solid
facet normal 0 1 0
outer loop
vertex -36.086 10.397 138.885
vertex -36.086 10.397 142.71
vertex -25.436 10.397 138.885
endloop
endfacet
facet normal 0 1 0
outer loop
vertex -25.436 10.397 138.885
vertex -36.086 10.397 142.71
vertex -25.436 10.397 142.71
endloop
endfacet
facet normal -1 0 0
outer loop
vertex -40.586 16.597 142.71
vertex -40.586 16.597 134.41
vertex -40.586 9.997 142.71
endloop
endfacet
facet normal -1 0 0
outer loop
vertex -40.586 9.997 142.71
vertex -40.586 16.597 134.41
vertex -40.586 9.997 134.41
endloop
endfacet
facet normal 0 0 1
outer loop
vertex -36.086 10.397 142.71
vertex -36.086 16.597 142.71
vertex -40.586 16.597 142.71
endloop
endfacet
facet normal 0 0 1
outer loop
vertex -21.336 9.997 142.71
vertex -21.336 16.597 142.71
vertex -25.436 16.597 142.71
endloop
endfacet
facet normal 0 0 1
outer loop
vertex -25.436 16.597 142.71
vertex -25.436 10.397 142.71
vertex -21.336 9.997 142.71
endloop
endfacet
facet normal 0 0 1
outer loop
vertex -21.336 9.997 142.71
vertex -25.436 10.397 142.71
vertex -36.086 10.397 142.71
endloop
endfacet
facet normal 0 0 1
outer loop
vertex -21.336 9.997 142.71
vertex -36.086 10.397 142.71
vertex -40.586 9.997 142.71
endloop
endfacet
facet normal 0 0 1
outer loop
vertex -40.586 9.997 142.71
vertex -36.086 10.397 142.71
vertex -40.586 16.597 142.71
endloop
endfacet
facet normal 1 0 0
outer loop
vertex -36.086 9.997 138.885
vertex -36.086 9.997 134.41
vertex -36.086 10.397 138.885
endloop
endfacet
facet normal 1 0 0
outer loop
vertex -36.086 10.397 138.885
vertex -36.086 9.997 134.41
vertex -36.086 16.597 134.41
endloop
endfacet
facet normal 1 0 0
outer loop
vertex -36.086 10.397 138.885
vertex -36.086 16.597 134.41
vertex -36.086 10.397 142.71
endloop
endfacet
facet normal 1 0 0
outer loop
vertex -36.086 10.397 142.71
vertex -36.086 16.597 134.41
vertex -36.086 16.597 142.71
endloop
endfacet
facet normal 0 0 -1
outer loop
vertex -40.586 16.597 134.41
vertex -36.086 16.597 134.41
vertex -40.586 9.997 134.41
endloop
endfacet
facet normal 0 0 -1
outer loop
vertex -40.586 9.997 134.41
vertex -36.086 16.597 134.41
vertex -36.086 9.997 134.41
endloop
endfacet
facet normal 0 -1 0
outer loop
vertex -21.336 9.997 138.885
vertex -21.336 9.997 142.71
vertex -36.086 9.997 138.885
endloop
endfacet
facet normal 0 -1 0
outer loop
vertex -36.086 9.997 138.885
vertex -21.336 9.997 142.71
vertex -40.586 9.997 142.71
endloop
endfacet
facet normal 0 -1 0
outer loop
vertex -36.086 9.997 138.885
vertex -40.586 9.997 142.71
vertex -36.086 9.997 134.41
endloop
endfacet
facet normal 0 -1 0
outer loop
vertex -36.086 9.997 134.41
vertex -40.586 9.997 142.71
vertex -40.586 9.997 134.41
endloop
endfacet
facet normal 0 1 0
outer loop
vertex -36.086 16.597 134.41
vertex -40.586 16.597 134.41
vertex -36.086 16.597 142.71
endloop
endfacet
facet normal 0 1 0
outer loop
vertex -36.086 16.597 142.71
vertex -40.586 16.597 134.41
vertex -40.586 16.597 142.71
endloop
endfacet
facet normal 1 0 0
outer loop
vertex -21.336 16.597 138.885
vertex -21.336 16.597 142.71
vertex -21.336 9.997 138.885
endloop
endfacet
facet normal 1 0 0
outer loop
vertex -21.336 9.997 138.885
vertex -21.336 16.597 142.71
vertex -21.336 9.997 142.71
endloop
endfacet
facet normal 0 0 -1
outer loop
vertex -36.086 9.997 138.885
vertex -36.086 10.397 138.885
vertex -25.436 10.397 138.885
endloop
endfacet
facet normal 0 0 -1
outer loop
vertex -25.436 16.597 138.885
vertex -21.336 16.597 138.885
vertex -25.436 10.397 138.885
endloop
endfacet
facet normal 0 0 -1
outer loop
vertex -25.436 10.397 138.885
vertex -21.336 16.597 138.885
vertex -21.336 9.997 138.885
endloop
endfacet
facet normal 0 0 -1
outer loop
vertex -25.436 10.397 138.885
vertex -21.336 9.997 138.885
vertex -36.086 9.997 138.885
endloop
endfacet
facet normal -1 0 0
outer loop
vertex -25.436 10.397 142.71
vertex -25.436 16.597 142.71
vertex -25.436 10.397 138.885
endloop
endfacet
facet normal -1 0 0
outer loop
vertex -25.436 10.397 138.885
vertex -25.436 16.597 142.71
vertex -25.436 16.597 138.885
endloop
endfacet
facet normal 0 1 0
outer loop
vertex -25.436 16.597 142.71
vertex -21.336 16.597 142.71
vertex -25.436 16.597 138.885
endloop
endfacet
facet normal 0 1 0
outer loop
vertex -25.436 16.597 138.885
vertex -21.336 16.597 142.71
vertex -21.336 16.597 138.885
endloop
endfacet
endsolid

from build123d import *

# Parameters (mm, degrees)
SCHIZZO1_W                   = 4.5
SCHIZZO1_H                   = 3.825
SCHIZZO1_H_2                 = 4.475
SCHIZZO1_W_2                 = 4.1
ESTRUSIONE_ESTRUSIONE1_DEPTH = 6.6
SCHIZZO1_4_W                 = 4.5
SCHIZZO1_4_H                 = 4.475
SCHIZZO1_4_H_2               = 3.825
SCHIZZO1_4_W_2               = 10.65
SCHIZZO1_4_W_3               = 4.1
ESTRUSIONE_ESTRUSIONE2_DEPTH = 0.4


with BuildPart() as part:
    # Schizzo1 → Estrusione-Estrusione1 (new body)
    with BuildSketch(Plane.XZ.offset(-9.997150898)):
        with Locations((-38.335959006, 140.797368204)):
            Rectangle(SCHIZZO1_W, SCHIZZO1_H)
        with Locations((-38.335959006, 136.647368204)):
            Rectangle(SCHIZZO1_W, SCHIZZO1_H_2)
        with Locations((-23.385959006, 140.797368204)):
            Rectangle(SCHIZZO1_W_2, SCHIZZO1_H)
    extrude(amount=-ESTRUSIONE_ESTRUSIONE1_DEPTH)

    # Schizzo1<4> → Estrusione-Estrusione2 (add)
    with BuildSketch(Plane.XZ.offset(-9.997150898)):
        with Locations((-38.335959006, 136.647368204)):
            Rectangle(SCHIZZO1_4_W, SCHIZZO1_4_H)
        with Locations((-38.335959006, 140.797368204)):
            Rectangle(SCHIZZO1_4_W, SCHIZZO1_4_H_2)
        with Locations((-30.760959006, 140.797368204)):
            Rectangle(SCHIZZO1_4_W_2, SCHIZZO1_4_H_2)
        with Locations((-23.385959006, 140.797368204)):
            Rectangle(SCHIZZO1_4_W_3, SCHIZZO1_4_H_2)
    extrude(amount=-ESTRUSIONE_ESTRUSIONE2_DEPTH)


solid = part.part
